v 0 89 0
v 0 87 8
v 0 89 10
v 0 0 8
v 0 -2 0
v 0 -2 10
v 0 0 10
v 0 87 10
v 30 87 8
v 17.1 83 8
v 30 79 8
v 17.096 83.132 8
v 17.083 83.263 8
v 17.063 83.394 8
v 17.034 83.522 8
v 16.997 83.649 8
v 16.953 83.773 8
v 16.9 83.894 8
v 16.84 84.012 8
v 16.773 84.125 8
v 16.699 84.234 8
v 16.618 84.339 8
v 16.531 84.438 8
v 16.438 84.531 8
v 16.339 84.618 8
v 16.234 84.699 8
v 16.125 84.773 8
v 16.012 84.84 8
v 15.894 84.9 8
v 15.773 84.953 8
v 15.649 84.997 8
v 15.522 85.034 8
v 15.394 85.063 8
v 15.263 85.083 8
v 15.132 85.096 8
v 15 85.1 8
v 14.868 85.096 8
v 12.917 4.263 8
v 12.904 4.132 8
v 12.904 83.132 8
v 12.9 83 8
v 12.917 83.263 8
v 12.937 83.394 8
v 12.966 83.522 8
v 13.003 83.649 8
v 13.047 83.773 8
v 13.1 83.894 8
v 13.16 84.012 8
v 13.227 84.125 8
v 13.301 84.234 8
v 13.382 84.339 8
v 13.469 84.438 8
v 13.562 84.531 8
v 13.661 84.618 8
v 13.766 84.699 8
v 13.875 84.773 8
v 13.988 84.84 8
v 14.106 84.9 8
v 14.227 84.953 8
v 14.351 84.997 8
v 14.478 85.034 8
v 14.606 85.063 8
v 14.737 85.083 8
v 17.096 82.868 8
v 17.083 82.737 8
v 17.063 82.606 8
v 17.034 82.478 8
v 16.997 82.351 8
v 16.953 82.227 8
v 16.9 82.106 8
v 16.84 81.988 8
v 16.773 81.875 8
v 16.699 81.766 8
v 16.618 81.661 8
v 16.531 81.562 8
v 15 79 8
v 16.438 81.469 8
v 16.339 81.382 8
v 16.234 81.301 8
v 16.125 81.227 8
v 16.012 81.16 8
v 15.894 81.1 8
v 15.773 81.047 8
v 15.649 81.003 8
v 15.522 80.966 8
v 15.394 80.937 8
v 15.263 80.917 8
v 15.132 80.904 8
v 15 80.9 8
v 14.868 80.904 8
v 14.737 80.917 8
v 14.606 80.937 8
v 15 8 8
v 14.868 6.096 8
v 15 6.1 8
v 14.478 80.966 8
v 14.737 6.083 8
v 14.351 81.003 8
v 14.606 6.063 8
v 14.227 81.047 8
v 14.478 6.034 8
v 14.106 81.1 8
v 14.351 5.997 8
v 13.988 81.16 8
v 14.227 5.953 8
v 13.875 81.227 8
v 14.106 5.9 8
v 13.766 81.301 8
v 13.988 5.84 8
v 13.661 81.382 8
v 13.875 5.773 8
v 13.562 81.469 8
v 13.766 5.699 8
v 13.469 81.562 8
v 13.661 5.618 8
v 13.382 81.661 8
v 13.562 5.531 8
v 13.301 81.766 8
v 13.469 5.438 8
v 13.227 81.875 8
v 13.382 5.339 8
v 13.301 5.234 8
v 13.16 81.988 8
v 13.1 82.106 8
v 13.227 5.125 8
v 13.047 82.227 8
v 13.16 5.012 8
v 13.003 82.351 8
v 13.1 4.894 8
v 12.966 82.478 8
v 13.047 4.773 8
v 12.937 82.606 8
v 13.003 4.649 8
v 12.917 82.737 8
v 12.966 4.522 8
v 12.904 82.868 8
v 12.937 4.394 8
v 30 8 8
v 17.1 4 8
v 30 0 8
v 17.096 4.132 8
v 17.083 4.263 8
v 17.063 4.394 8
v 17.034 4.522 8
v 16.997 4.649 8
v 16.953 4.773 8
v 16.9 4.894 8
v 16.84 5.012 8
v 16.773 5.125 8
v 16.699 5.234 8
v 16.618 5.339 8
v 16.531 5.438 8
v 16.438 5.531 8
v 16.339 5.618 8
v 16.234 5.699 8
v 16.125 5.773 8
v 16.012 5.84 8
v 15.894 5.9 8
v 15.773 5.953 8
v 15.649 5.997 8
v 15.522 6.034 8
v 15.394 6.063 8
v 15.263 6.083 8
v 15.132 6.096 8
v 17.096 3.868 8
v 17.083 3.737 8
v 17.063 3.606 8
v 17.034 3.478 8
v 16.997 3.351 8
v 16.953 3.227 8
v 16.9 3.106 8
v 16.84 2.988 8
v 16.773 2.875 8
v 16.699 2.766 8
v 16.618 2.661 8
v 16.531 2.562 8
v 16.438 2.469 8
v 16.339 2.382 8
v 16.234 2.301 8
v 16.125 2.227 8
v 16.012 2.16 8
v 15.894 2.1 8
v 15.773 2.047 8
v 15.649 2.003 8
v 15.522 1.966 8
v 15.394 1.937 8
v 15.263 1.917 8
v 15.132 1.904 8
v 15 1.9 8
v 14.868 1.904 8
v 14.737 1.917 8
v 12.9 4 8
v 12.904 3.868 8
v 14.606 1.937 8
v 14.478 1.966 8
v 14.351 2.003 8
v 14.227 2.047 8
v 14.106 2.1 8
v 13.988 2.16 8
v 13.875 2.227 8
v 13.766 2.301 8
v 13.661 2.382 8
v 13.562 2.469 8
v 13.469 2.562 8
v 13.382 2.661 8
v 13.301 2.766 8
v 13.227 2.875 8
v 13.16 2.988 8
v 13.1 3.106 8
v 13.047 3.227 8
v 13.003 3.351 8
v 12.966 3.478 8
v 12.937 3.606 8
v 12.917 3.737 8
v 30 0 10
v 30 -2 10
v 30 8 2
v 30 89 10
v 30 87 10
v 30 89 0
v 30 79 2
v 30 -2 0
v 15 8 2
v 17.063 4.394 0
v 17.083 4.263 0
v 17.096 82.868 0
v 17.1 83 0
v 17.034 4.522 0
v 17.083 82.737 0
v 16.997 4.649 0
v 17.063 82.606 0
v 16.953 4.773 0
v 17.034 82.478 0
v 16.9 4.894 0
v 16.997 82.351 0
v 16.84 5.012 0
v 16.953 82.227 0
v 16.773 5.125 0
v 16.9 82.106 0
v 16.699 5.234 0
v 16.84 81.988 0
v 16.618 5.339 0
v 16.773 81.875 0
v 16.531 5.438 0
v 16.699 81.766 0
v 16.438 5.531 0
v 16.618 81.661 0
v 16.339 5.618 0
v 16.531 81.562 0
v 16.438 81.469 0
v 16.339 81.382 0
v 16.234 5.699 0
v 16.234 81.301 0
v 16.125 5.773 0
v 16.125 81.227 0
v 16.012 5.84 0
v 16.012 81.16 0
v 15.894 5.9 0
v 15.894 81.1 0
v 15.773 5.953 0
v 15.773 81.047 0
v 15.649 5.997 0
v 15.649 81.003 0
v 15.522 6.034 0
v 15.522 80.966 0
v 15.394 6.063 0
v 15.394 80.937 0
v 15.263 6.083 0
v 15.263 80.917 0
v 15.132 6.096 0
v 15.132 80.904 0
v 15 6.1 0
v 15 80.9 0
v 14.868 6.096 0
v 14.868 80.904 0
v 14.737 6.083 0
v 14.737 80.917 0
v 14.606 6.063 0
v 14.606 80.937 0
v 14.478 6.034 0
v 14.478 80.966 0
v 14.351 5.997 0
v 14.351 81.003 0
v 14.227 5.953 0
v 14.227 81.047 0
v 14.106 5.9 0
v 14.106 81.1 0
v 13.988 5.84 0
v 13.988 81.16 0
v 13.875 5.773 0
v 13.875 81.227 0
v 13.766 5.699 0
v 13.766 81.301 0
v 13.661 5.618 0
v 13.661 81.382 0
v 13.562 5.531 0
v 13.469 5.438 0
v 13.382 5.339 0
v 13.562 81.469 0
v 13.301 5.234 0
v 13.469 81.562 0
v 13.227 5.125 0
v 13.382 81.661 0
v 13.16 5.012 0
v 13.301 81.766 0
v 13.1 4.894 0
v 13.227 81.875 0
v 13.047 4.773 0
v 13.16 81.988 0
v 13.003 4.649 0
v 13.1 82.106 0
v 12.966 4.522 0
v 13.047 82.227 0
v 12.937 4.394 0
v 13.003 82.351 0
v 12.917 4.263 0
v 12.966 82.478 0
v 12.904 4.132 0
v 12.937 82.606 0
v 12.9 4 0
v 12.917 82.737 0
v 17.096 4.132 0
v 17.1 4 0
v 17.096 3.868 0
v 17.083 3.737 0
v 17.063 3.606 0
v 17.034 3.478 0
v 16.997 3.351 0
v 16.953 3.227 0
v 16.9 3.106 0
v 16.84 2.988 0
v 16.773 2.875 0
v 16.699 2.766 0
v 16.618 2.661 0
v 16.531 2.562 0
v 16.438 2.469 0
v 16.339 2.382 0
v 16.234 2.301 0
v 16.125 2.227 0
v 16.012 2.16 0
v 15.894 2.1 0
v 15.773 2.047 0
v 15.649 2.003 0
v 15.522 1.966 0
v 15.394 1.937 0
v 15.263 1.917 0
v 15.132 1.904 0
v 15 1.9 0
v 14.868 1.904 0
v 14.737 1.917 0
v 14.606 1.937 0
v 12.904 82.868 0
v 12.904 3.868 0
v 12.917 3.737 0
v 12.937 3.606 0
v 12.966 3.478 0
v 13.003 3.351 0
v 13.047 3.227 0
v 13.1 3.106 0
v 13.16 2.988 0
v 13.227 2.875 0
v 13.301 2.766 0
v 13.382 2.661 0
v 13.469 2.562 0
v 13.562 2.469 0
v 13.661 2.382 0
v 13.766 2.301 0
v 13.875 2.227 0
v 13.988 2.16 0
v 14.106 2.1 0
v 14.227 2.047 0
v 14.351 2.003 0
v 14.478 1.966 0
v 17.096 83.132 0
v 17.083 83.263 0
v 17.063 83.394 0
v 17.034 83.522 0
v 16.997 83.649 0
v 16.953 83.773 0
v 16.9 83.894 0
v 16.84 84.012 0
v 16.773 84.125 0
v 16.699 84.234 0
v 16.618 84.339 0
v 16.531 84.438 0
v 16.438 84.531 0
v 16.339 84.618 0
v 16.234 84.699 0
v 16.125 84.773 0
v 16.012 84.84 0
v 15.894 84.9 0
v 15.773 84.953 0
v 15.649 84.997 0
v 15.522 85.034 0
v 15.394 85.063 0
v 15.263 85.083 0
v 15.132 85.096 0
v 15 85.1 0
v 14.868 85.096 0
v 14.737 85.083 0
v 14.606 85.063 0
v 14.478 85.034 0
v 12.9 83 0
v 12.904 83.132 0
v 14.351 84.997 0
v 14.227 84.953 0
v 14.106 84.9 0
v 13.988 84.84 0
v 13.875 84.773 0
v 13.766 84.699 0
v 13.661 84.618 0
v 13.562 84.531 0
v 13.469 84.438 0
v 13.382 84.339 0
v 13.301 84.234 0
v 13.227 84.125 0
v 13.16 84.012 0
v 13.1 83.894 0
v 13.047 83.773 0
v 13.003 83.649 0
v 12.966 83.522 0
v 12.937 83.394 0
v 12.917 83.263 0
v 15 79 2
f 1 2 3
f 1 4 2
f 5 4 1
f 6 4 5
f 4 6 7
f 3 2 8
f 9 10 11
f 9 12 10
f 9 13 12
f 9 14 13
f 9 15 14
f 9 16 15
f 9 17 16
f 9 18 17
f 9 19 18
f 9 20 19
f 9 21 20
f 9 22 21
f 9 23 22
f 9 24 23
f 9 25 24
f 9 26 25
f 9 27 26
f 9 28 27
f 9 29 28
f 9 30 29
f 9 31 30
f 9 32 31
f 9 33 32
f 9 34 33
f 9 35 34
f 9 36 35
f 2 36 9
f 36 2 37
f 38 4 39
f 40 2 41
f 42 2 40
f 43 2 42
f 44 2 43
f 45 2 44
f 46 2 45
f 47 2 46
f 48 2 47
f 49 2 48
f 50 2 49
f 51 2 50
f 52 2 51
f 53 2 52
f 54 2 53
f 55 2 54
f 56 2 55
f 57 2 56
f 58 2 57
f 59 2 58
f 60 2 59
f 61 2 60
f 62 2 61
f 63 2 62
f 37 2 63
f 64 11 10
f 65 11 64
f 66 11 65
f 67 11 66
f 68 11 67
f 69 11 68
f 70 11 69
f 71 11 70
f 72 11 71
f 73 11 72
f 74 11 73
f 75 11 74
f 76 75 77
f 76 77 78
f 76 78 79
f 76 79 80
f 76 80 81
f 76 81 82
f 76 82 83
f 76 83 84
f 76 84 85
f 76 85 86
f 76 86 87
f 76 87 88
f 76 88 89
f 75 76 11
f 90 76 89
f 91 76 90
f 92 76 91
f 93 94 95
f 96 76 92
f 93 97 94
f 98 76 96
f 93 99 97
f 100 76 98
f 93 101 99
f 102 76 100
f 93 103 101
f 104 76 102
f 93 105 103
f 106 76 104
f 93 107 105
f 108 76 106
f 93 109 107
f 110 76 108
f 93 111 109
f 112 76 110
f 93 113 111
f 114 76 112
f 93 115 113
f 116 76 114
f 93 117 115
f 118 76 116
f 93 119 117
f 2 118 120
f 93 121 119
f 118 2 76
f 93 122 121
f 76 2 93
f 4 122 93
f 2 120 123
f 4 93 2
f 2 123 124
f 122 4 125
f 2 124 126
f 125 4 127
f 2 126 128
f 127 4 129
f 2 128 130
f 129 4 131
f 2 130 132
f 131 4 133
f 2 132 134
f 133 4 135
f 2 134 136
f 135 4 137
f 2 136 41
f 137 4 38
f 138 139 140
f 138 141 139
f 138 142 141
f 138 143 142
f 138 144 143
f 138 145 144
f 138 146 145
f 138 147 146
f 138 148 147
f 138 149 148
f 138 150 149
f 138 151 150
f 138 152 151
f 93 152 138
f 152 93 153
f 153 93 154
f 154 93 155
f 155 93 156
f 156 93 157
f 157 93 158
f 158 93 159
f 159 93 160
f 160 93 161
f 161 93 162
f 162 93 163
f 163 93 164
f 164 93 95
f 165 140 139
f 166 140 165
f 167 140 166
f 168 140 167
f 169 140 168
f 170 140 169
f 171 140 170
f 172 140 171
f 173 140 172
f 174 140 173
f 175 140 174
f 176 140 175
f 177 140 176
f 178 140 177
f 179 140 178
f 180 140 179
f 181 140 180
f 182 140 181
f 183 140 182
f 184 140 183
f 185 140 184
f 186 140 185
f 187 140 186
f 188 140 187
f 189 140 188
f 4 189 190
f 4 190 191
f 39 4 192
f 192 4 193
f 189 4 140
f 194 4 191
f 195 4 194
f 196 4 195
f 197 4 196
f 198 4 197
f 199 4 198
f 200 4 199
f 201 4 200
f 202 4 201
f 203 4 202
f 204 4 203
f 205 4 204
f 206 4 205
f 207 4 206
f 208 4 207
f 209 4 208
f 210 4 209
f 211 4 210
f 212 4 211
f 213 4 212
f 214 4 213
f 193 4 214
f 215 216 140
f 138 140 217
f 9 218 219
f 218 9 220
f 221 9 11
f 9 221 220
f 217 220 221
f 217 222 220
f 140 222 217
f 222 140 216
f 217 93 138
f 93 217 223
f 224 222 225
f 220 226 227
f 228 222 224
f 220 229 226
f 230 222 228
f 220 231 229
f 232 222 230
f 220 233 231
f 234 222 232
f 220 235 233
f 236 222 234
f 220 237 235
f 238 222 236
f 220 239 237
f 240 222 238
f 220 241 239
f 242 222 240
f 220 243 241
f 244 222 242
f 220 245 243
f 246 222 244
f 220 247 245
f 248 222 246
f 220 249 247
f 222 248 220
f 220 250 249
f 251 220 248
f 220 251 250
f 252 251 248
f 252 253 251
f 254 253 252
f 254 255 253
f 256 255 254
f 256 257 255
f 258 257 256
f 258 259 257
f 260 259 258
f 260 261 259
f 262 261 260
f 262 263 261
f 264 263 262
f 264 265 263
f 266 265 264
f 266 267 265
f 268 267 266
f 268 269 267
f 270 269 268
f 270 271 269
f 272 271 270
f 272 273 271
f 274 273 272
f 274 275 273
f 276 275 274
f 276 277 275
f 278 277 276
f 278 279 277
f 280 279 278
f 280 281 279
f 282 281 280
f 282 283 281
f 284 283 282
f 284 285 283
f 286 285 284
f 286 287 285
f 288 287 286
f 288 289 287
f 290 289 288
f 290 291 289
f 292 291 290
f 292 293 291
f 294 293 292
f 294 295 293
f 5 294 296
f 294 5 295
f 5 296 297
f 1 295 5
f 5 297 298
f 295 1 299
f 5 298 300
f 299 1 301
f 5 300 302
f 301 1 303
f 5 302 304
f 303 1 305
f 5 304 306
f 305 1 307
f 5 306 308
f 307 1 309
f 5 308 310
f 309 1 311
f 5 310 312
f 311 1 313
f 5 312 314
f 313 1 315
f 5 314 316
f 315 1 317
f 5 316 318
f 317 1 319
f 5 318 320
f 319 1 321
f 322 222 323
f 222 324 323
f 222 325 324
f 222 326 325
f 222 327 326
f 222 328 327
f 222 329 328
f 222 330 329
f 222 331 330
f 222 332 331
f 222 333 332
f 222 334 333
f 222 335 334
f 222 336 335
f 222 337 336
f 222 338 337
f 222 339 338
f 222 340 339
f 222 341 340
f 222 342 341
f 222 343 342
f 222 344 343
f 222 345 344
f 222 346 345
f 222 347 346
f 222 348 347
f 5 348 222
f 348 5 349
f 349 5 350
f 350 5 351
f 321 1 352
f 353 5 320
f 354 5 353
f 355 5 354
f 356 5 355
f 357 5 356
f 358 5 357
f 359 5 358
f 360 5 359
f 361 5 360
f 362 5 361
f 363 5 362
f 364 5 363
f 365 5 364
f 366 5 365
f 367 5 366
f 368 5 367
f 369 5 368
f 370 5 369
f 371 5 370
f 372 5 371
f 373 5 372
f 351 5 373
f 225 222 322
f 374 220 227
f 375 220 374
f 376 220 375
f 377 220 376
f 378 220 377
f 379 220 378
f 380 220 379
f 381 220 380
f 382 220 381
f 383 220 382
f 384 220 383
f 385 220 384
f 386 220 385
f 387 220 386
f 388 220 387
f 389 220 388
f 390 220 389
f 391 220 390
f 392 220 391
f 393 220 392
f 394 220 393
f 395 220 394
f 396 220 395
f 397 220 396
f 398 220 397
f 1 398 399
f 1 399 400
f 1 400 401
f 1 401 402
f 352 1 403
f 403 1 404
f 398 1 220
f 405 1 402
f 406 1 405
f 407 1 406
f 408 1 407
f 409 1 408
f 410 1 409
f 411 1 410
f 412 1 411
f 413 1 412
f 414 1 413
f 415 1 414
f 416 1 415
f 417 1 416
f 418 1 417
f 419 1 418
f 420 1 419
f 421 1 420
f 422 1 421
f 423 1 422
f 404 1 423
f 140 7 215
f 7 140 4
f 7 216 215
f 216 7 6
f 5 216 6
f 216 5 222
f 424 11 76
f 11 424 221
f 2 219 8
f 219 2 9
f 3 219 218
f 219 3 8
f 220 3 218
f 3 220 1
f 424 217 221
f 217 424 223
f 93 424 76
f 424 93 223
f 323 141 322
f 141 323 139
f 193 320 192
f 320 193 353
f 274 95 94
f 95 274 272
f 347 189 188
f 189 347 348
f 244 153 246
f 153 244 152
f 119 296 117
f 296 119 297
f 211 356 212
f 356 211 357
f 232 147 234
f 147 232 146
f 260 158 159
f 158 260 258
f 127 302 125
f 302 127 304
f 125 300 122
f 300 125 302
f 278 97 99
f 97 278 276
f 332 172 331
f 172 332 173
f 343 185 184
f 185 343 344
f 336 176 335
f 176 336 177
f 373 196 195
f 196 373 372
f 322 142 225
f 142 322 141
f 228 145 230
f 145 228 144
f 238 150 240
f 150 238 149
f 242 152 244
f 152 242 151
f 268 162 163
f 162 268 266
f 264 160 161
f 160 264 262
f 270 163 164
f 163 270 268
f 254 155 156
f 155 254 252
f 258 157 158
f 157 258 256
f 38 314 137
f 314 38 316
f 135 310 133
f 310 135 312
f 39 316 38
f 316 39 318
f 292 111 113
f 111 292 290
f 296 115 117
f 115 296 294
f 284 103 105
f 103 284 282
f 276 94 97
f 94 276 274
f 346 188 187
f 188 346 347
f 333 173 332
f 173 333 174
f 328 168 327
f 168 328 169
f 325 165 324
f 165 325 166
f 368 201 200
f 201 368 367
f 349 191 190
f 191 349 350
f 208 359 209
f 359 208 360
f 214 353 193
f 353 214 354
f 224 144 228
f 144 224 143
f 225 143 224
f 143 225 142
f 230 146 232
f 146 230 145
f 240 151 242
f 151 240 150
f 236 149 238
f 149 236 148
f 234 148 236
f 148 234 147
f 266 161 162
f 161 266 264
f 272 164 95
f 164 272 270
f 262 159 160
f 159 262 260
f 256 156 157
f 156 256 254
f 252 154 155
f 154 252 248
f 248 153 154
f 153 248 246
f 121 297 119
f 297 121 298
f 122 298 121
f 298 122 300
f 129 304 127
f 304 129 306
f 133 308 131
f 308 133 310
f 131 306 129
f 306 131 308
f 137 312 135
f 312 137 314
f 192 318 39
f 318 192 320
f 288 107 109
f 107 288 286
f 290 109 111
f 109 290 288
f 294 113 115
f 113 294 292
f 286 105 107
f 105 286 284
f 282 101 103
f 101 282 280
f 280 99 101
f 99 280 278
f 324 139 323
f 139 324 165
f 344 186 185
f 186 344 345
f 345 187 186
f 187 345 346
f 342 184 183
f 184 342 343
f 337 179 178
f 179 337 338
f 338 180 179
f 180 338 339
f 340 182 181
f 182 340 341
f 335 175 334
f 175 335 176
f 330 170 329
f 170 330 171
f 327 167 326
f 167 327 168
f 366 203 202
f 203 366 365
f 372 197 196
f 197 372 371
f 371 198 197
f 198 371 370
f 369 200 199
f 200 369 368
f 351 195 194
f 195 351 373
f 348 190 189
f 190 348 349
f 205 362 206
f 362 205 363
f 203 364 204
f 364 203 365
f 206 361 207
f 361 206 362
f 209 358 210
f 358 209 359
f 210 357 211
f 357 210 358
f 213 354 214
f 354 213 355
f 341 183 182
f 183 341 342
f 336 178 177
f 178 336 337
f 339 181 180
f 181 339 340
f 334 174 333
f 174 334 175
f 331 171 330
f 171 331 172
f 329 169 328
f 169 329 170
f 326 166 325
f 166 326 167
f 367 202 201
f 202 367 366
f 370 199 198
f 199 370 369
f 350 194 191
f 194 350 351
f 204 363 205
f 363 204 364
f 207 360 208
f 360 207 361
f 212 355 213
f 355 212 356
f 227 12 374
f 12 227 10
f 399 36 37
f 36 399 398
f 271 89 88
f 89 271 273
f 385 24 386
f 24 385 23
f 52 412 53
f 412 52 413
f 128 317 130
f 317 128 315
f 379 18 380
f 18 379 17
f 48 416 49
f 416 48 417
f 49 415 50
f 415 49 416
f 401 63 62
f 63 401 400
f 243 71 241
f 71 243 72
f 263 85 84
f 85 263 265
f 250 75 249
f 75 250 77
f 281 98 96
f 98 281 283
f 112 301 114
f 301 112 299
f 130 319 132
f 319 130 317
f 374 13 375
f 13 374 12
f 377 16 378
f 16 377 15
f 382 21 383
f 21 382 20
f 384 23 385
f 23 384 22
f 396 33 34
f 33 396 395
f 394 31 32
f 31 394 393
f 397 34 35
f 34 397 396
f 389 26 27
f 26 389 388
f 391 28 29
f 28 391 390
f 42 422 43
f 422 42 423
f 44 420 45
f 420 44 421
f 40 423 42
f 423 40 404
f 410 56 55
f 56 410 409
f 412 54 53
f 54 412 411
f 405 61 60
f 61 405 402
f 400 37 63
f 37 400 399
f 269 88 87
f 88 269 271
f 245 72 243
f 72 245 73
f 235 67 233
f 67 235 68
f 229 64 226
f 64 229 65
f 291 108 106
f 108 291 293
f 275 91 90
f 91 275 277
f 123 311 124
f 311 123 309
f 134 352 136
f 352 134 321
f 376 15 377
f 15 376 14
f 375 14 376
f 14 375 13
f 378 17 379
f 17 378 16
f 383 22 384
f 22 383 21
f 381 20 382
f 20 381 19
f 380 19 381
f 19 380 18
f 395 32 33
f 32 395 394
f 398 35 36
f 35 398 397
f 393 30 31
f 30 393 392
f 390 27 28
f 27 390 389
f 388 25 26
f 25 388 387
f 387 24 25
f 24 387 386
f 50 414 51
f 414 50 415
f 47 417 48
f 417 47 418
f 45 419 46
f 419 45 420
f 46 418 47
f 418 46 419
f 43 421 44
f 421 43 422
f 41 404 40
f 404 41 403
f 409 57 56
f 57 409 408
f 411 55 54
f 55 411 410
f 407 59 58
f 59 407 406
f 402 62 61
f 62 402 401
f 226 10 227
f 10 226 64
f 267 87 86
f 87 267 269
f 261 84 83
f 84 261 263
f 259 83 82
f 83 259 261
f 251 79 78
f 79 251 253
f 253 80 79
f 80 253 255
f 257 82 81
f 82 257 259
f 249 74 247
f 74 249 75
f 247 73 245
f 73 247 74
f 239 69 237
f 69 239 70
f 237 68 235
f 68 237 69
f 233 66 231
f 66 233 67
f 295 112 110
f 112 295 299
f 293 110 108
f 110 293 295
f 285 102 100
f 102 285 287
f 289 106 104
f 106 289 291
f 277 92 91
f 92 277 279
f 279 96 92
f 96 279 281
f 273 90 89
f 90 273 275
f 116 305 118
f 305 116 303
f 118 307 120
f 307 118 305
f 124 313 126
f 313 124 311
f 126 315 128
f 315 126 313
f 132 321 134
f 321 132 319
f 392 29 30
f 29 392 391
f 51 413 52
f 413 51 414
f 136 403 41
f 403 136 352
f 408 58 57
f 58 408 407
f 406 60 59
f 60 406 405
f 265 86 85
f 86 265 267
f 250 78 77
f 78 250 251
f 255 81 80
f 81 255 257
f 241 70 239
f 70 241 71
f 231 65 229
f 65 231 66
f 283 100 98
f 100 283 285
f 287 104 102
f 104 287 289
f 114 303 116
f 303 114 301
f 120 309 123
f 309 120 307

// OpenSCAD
terminal_grp_cnt = 4; //x2
terminal_grp_len = 2 * 8.5; //mm

terminal_grp_pos_x = 15; //mm
terminal_grp_pos_y = 18; //mm

terminal_bed_hight = 2; //mm

body_hight = 8; //mm
body_len = 30; //mm
body_width = 8; //mm
body_grp_width = 36 - terminal_grp_len; //mm
body_full_width = body_grp_width + terminal_grp_cnt * terminal_grp_len;

hole_dia = 4.2; //mm
hole_pos_x = 15; //mm
hole_pos_y = 4; //mm

border_hight = 2; //mm
border_width = 2; //mm

$fn = 100;

echo("full width = ", body_full_width);

module foot() {
    translate([0, 0, 0])
        cube([body_len, body_width, body_hight]);
    translate([0, -border_width, 0])
        cube([body_len, border_width, border_hight + body_hight]);
}

difference() {
    union() {
        translate([0, 0, 0])
            rotate(0)
                foot();
        translate([0, body_full_width, 0])
            mirror([0, 1, 0])
                foot();
        cube([body_len, body_full_width, terminal_bed_hight]);
        cube([hole_pos_x, body_full_width, body_hight]);
    }
    union() {
        translate([hole_pos_x, hole_pos_y, 0])
            cylinder(body_hight, r = hole_dia / 2);
        translate([hole_pos_x, body_full_width - hole_pos_y, 0])
            cylinder(body_hight, r = hole_dia / 2);
    }
}
